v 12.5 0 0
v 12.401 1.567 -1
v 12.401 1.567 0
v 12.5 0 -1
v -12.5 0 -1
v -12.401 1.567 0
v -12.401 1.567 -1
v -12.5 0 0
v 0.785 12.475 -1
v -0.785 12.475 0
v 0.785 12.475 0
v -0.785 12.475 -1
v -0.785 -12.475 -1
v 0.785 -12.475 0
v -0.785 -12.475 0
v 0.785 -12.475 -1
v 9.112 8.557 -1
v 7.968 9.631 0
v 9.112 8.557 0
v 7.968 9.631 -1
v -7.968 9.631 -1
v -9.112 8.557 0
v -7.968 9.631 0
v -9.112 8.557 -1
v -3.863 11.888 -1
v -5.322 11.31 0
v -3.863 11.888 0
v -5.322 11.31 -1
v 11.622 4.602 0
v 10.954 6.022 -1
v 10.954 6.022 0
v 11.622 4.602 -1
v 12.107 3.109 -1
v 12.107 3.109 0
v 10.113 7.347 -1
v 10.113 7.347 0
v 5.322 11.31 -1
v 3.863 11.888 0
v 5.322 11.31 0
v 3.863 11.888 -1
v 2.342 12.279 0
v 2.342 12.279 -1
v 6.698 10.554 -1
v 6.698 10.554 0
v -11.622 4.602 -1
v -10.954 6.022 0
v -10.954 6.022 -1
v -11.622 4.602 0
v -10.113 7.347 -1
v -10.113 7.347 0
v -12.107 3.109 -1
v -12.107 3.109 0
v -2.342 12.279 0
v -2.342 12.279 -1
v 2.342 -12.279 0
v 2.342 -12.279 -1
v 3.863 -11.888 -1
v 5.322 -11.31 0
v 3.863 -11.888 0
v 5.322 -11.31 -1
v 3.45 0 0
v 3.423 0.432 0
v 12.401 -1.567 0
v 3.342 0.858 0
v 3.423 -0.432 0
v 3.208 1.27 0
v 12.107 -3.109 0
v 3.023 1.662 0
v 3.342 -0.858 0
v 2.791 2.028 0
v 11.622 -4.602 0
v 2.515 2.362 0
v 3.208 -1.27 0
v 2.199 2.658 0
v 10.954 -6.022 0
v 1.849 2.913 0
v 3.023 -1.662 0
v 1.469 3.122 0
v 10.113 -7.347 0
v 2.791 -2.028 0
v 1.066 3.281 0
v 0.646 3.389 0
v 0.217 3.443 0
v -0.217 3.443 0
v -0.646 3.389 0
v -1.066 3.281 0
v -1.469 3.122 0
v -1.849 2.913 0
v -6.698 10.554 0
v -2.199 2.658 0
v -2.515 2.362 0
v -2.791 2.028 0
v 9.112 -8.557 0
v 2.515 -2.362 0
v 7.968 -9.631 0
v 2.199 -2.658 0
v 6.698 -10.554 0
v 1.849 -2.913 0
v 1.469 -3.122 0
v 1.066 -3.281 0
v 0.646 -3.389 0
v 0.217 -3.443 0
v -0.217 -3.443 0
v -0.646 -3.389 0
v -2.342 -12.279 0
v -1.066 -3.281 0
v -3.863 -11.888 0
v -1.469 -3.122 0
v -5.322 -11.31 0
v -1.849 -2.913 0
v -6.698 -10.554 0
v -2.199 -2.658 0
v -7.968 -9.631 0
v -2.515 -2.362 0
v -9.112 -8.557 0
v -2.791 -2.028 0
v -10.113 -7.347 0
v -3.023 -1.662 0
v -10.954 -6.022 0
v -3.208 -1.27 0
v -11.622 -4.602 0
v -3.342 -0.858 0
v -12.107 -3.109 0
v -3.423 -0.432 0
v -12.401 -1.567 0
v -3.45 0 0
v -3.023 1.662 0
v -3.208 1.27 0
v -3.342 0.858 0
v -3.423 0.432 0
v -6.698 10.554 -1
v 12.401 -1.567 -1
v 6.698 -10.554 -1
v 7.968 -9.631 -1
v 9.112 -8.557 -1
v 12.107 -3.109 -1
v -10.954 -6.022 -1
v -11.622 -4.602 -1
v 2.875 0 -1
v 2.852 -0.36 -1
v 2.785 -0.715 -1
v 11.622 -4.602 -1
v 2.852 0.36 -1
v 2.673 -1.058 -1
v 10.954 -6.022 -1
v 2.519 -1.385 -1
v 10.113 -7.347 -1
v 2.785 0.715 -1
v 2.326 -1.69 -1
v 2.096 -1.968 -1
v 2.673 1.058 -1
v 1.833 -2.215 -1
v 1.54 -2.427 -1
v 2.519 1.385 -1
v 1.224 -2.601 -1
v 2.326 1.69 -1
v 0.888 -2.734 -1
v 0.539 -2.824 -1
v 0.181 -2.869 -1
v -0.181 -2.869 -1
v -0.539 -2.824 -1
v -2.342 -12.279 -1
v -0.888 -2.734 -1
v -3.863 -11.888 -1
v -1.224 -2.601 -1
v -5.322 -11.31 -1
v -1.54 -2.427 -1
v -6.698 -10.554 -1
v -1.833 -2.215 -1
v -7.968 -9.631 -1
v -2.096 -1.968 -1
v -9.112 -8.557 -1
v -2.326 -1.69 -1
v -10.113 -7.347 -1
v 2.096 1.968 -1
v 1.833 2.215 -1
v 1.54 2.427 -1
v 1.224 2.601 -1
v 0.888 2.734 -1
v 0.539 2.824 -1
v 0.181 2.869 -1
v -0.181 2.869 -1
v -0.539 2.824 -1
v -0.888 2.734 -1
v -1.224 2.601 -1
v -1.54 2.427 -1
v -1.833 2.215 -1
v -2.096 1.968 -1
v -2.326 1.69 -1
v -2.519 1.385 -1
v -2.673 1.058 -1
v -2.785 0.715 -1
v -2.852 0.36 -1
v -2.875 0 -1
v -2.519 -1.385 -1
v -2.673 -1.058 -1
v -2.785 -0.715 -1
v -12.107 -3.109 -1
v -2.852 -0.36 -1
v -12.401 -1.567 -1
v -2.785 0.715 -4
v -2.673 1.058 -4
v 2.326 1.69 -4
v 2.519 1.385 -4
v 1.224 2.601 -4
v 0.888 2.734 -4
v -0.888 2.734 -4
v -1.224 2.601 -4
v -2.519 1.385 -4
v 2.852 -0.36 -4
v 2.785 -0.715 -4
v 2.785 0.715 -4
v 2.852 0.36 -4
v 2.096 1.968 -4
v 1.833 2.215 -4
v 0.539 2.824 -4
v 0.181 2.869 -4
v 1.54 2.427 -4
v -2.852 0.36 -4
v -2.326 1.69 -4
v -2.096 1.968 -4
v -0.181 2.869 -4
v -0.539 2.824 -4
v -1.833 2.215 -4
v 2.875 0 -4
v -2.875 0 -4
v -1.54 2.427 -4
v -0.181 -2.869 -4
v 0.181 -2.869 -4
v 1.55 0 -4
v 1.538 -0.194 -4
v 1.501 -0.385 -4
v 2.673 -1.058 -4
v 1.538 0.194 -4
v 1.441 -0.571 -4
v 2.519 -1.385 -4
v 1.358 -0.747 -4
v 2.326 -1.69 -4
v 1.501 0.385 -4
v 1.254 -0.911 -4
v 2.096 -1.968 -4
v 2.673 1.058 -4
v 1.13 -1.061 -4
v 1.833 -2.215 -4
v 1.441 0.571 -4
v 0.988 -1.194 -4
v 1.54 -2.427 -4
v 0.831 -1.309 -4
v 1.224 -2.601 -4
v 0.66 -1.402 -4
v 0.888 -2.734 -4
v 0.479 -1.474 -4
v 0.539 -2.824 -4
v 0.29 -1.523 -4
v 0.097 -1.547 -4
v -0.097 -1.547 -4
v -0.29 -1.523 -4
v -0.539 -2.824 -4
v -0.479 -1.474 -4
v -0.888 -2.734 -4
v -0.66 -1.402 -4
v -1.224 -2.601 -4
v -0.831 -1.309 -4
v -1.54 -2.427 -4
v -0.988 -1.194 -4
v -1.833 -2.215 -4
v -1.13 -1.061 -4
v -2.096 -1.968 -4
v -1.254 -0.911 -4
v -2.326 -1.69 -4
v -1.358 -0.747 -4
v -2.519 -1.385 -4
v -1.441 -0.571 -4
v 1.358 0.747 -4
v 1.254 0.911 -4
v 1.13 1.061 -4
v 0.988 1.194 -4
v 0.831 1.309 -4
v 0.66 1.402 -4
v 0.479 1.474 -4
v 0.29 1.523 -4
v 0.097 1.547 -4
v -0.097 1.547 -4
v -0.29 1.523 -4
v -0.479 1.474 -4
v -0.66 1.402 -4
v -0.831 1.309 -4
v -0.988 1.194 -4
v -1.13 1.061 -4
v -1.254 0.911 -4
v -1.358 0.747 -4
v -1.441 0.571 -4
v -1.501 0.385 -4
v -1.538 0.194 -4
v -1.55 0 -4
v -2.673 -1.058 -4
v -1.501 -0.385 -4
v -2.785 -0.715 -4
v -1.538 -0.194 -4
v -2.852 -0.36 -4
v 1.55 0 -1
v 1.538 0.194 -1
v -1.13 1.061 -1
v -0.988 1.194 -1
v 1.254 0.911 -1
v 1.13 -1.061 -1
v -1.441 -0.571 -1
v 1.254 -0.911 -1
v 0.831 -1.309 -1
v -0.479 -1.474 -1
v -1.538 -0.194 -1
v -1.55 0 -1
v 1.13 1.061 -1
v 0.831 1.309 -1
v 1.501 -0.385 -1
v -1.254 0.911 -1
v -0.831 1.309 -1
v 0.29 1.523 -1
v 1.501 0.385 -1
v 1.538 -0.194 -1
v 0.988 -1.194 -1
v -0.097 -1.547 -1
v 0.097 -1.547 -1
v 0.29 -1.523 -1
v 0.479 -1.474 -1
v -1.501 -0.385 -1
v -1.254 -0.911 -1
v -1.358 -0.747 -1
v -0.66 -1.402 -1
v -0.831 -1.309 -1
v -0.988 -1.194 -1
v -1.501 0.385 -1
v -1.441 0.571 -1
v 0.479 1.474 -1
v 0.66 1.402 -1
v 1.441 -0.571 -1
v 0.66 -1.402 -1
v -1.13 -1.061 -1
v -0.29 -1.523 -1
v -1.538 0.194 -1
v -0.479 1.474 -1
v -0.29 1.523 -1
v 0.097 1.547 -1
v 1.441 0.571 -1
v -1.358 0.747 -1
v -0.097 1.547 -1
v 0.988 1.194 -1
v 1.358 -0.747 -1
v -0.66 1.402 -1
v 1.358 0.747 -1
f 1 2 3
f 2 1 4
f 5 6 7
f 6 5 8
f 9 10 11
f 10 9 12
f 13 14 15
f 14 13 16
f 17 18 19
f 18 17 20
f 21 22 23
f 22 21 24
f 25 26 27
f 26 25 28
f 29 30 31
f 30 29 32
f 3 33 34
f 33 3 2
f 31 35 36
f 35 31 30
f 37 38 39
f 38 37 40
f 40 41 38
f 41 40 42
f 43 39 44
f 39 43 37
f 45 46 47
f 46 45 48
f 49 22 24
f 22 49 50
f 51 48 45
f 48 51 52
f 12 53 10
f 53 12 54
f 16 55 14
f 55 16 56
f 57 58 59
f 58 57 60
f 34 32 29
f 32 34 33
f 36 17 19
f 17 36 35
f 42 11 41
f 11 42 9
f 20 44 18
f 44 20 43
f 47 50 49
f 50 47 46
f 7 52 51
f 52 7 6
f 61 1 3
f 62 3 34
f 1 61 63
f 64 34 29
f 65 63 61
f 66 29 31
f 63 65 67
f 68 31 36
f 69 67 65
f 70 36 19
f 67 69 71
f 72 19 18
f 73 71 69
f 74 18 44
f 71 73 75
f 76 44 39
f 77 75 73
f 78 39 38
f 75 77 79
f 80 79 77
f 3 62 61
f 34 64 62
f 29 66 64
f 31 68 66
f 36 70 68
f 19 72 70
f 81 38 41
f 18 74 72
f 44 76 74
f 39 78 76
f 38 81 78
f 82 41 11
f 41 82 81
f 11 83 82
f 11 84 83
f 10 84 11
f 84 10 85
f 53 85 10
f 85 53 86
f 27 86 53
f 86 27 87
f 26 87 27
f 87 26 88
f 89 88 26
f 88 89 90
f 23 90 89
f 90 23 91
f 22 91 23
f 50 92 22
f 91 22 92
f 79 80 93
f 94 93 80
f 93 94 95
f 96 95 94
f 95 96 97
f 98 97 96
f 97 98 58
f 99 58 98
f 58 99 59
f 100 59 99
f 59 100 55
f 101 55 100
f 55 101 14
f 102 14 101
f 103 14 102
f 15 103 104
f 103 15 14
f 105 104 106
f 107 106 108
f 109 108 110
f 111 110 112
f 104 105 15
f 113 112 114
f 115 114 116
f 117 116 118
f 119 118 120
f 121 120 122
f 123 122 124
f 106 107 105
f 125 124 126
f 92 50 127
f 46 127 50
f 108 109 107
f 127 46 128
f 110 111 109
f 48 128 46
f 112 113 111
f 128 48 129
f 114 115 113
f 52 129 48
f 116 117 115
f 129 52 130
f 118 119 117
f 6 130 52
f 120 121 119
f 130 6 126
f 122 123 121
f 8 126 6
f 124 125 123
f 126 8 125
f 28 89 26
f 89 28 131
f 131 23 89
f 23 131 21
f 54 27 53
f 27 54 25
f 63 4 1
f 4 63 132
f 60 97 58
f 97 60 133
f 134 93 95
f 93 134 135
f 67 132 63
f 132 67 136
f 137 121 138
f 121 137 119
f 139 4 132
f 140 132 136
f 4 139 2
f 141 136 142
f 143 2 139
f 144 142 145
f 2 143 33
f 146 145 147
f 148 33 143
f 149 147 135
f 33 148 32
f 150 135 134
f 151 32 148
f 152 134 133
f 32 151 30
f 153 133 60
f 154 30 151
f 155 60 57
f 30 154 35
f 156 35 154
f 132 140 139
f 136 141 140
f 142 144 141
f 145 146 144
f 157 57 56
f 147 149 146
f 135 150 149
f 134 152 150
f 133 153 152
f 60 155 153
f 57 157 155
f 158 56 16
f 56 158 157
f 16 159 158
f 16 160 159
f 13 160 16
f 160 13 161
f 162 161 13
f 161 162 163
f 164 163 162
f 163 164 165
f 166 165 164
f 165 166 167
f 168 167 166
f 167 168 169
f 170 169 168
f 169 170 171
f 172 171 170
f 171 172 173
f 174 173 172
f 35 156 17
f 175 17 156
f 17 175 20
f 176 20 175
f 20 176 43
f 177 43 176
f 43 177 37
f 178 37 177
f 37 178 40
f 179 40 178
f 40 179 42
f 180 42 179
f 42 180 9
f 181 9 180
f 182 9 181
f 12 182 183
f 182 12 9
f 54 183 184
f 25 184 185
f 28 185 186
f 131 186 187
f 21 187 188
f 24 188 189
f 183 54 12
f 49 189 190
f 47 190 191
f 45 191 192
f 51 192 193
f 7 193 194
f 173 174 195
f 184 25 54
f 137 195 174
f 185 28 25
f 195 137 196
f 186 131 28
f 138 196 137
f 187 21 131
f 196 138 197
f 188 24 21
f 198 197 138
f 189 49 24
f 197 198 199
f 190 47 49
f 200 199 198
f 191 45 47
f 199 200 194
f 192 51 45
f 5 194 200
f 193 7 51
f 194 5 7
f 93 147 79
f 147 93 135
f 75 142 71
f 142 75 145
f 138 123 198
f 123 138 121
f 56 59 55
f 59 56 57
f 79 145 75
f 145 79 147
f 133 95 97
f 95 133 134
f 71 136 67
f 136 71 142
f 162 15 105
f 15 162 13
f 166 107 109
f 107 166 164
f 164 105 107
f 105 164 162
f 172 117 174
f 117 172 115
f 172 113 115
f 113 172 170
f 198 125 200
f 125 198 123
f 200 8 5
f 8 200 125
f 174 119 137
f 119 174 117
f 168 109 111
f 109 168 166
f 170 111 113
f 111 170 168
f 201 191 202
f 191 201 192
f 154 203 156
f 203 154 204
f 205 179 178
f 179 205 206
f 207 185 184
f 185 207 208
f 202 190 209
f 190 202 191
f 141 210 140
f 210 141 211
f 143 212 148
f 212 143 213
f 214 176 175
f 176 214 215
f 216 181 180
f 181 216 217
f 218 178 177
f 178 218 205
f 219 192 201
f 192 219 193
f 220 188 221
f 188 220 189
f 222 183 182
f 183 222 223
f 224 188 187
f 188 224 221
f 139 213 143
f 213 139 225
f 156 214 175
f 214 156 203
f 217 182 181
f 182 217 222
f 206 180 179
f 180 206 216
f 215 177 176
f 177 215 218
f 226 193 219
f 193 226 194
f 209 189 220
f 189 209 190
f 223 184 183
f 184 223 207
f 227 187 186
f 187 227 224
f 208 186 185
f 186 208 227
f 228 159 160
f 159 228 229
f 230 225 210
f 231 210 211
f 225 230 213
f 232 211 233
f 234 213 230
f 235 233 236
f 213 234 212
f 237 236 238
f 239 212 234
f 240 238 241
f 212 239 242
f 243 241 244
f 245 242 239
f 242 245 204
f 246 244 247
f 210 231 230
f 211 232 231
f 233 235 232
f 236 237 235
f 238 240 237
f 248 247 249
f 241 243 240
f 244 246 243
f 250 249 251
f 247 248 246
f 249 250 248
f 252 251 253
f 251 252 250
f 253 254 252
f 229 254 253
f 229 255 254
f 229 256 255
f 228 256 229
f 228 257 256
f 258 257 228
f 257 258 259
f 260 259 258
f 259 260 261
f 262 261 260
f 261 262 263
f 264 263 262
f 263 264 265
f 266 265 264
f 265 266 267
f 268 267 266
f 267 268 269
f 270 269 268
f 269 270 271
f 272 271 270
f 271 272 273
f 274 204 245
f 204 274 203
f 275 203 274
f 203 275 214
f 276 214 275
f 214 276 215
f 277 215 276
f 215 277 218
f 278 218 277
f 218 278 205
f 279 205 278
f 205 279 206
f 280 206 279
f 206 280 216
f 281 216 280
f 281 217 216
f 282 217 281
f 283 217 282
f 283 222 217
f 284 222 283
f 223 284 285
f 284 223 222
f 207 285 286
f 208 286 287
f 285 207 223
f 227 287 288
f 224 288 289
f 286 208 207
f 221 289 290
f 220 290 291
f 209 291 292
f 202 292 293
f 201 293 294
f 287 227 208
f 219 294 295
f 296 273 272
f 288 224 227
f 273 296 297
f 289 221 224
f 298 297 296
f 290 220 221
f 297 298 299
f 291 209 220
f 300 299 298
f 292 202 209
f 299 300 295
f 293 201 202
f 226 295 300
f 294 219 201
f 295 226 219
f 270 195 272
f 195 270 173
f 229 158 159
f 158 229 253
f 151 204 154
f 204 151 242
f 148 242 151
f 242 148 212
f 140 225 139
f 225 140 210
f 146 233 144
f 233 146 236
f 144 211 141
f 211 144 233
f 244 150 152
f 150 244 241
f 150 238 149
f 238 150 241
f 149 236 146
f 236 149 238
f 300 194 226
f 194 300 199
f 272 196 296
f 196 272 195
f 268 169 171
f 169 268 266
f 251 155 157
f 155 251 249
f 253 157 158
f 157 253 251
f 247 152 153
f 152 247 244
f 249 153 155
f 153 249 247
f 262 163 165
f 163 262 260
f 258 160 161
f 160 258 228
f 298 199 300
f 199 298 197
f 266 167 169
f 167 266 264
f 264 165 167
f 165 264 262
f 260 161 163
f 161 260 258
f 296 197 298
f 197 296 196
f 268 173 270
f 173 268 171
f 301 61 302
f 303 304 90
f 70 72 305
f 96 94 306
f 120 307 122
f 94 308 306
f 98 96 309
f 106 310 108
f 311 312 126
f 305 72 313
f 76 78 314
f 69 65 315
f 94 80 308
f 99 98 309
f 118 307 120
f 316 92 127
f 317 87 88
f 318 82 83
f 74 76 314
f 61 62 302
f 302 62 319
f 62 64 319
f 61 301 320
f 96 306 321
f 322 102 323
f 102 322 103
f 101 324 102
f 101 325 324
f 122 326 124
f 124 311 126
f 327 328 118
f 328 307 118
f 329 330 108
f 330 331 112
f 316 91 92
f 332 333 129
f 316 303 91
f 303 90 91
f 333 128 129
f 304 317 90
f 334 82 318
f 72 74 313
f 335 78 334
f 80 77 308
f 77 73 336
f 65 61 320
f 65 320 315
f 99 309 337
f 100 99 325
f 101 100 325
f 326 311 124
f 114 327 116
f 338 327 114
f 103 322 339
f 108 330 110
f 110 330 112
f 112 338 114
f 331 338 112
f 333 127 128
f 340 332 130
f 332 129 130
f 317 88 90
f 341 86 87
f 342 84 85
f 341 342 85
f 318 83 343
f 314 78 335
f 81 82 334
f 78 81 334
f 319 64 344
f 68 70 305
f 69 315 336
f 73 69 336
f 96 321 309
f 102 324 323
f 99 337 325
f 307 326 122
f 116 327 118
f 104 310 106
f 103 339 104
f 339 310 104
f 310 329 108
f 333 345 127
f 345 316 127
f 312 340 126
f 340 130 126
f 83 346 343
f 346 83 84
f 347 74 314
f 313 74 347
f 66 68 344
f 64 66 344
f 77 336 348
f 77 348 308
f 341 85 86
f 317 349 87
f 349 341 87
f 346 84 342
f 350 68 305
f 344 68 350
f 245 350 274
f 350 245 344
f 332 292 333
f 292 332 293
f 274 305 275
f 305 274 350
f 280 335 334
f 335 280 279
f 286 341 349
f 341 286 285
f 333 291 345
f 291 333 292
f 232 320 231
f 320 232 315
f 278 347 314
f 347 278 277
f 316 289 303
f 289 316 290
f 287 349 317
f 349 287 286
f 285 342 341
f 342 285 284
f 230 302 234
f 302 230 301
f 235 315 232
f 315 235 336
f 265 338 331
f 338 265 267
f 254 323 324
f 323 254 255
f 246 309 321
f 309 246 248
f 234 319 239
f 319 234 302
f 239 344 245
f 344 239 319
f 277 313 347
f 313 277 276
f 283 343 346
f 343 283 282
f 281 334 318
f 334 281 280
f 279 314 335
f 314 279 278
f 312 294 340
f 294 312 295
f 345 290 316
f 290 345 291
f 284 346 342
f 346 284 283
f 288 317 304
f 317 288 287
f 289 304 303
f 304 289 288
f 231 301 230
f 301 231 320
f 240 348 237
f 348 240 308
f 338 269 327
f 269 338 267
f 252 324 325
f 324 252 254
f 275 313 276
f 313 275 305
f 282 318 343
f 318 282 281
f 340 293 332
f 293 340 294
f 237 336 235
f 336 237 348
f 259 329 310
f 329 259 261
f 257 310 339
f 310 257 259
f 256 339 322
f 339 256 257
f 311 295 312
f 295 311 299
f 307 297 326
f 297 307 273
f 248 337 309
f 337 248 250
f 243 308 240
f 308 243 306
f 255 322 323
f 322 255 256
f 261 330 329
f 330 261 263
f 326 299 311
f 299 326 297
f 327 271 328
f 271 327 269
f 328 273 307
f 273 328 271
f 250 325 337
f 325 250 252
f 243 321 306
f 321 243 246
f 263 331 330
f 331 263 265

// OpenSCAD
$fn = 50;


difference() {
	union() {
		translate(v = [0, 0, -1.0000000000]) {
			cylinder(h = 1.0000000000, r = 12.5000000000);
		}
		#translate(v = [0, 0, -4.0000000000]) {
			cylinder(h = 4.0000000000, r = 2.8750000000);
		}
	}
	union() {
		translate(v = [0, 0, 0]) {
			rotate(a = [0, 0, 0]) {
				difference() {
					union() {
						translate(v = [0, 0, -4.0000000000]) {
							cylinder(h = 4.0000000000, r = 1.2500000000);
						}
						translate(v = [0, 0, -1.0000000000]) {
							cylinder(h = 1.0000000000, r1 = 1.5500000000, r2 = 3.4500000000);
						}
						translate(v = [0, 0, -4.0000000000]) {
							cylinder(h = 4.0000000000, r = 1.5500000000);
						}
						translate(v = [0, 0, -4.0000000000]) {
							cylinder(h = 4.0000000000, r = 1.2500000000);
						}
					}
					union();
				}
			}
		}
	}
}
